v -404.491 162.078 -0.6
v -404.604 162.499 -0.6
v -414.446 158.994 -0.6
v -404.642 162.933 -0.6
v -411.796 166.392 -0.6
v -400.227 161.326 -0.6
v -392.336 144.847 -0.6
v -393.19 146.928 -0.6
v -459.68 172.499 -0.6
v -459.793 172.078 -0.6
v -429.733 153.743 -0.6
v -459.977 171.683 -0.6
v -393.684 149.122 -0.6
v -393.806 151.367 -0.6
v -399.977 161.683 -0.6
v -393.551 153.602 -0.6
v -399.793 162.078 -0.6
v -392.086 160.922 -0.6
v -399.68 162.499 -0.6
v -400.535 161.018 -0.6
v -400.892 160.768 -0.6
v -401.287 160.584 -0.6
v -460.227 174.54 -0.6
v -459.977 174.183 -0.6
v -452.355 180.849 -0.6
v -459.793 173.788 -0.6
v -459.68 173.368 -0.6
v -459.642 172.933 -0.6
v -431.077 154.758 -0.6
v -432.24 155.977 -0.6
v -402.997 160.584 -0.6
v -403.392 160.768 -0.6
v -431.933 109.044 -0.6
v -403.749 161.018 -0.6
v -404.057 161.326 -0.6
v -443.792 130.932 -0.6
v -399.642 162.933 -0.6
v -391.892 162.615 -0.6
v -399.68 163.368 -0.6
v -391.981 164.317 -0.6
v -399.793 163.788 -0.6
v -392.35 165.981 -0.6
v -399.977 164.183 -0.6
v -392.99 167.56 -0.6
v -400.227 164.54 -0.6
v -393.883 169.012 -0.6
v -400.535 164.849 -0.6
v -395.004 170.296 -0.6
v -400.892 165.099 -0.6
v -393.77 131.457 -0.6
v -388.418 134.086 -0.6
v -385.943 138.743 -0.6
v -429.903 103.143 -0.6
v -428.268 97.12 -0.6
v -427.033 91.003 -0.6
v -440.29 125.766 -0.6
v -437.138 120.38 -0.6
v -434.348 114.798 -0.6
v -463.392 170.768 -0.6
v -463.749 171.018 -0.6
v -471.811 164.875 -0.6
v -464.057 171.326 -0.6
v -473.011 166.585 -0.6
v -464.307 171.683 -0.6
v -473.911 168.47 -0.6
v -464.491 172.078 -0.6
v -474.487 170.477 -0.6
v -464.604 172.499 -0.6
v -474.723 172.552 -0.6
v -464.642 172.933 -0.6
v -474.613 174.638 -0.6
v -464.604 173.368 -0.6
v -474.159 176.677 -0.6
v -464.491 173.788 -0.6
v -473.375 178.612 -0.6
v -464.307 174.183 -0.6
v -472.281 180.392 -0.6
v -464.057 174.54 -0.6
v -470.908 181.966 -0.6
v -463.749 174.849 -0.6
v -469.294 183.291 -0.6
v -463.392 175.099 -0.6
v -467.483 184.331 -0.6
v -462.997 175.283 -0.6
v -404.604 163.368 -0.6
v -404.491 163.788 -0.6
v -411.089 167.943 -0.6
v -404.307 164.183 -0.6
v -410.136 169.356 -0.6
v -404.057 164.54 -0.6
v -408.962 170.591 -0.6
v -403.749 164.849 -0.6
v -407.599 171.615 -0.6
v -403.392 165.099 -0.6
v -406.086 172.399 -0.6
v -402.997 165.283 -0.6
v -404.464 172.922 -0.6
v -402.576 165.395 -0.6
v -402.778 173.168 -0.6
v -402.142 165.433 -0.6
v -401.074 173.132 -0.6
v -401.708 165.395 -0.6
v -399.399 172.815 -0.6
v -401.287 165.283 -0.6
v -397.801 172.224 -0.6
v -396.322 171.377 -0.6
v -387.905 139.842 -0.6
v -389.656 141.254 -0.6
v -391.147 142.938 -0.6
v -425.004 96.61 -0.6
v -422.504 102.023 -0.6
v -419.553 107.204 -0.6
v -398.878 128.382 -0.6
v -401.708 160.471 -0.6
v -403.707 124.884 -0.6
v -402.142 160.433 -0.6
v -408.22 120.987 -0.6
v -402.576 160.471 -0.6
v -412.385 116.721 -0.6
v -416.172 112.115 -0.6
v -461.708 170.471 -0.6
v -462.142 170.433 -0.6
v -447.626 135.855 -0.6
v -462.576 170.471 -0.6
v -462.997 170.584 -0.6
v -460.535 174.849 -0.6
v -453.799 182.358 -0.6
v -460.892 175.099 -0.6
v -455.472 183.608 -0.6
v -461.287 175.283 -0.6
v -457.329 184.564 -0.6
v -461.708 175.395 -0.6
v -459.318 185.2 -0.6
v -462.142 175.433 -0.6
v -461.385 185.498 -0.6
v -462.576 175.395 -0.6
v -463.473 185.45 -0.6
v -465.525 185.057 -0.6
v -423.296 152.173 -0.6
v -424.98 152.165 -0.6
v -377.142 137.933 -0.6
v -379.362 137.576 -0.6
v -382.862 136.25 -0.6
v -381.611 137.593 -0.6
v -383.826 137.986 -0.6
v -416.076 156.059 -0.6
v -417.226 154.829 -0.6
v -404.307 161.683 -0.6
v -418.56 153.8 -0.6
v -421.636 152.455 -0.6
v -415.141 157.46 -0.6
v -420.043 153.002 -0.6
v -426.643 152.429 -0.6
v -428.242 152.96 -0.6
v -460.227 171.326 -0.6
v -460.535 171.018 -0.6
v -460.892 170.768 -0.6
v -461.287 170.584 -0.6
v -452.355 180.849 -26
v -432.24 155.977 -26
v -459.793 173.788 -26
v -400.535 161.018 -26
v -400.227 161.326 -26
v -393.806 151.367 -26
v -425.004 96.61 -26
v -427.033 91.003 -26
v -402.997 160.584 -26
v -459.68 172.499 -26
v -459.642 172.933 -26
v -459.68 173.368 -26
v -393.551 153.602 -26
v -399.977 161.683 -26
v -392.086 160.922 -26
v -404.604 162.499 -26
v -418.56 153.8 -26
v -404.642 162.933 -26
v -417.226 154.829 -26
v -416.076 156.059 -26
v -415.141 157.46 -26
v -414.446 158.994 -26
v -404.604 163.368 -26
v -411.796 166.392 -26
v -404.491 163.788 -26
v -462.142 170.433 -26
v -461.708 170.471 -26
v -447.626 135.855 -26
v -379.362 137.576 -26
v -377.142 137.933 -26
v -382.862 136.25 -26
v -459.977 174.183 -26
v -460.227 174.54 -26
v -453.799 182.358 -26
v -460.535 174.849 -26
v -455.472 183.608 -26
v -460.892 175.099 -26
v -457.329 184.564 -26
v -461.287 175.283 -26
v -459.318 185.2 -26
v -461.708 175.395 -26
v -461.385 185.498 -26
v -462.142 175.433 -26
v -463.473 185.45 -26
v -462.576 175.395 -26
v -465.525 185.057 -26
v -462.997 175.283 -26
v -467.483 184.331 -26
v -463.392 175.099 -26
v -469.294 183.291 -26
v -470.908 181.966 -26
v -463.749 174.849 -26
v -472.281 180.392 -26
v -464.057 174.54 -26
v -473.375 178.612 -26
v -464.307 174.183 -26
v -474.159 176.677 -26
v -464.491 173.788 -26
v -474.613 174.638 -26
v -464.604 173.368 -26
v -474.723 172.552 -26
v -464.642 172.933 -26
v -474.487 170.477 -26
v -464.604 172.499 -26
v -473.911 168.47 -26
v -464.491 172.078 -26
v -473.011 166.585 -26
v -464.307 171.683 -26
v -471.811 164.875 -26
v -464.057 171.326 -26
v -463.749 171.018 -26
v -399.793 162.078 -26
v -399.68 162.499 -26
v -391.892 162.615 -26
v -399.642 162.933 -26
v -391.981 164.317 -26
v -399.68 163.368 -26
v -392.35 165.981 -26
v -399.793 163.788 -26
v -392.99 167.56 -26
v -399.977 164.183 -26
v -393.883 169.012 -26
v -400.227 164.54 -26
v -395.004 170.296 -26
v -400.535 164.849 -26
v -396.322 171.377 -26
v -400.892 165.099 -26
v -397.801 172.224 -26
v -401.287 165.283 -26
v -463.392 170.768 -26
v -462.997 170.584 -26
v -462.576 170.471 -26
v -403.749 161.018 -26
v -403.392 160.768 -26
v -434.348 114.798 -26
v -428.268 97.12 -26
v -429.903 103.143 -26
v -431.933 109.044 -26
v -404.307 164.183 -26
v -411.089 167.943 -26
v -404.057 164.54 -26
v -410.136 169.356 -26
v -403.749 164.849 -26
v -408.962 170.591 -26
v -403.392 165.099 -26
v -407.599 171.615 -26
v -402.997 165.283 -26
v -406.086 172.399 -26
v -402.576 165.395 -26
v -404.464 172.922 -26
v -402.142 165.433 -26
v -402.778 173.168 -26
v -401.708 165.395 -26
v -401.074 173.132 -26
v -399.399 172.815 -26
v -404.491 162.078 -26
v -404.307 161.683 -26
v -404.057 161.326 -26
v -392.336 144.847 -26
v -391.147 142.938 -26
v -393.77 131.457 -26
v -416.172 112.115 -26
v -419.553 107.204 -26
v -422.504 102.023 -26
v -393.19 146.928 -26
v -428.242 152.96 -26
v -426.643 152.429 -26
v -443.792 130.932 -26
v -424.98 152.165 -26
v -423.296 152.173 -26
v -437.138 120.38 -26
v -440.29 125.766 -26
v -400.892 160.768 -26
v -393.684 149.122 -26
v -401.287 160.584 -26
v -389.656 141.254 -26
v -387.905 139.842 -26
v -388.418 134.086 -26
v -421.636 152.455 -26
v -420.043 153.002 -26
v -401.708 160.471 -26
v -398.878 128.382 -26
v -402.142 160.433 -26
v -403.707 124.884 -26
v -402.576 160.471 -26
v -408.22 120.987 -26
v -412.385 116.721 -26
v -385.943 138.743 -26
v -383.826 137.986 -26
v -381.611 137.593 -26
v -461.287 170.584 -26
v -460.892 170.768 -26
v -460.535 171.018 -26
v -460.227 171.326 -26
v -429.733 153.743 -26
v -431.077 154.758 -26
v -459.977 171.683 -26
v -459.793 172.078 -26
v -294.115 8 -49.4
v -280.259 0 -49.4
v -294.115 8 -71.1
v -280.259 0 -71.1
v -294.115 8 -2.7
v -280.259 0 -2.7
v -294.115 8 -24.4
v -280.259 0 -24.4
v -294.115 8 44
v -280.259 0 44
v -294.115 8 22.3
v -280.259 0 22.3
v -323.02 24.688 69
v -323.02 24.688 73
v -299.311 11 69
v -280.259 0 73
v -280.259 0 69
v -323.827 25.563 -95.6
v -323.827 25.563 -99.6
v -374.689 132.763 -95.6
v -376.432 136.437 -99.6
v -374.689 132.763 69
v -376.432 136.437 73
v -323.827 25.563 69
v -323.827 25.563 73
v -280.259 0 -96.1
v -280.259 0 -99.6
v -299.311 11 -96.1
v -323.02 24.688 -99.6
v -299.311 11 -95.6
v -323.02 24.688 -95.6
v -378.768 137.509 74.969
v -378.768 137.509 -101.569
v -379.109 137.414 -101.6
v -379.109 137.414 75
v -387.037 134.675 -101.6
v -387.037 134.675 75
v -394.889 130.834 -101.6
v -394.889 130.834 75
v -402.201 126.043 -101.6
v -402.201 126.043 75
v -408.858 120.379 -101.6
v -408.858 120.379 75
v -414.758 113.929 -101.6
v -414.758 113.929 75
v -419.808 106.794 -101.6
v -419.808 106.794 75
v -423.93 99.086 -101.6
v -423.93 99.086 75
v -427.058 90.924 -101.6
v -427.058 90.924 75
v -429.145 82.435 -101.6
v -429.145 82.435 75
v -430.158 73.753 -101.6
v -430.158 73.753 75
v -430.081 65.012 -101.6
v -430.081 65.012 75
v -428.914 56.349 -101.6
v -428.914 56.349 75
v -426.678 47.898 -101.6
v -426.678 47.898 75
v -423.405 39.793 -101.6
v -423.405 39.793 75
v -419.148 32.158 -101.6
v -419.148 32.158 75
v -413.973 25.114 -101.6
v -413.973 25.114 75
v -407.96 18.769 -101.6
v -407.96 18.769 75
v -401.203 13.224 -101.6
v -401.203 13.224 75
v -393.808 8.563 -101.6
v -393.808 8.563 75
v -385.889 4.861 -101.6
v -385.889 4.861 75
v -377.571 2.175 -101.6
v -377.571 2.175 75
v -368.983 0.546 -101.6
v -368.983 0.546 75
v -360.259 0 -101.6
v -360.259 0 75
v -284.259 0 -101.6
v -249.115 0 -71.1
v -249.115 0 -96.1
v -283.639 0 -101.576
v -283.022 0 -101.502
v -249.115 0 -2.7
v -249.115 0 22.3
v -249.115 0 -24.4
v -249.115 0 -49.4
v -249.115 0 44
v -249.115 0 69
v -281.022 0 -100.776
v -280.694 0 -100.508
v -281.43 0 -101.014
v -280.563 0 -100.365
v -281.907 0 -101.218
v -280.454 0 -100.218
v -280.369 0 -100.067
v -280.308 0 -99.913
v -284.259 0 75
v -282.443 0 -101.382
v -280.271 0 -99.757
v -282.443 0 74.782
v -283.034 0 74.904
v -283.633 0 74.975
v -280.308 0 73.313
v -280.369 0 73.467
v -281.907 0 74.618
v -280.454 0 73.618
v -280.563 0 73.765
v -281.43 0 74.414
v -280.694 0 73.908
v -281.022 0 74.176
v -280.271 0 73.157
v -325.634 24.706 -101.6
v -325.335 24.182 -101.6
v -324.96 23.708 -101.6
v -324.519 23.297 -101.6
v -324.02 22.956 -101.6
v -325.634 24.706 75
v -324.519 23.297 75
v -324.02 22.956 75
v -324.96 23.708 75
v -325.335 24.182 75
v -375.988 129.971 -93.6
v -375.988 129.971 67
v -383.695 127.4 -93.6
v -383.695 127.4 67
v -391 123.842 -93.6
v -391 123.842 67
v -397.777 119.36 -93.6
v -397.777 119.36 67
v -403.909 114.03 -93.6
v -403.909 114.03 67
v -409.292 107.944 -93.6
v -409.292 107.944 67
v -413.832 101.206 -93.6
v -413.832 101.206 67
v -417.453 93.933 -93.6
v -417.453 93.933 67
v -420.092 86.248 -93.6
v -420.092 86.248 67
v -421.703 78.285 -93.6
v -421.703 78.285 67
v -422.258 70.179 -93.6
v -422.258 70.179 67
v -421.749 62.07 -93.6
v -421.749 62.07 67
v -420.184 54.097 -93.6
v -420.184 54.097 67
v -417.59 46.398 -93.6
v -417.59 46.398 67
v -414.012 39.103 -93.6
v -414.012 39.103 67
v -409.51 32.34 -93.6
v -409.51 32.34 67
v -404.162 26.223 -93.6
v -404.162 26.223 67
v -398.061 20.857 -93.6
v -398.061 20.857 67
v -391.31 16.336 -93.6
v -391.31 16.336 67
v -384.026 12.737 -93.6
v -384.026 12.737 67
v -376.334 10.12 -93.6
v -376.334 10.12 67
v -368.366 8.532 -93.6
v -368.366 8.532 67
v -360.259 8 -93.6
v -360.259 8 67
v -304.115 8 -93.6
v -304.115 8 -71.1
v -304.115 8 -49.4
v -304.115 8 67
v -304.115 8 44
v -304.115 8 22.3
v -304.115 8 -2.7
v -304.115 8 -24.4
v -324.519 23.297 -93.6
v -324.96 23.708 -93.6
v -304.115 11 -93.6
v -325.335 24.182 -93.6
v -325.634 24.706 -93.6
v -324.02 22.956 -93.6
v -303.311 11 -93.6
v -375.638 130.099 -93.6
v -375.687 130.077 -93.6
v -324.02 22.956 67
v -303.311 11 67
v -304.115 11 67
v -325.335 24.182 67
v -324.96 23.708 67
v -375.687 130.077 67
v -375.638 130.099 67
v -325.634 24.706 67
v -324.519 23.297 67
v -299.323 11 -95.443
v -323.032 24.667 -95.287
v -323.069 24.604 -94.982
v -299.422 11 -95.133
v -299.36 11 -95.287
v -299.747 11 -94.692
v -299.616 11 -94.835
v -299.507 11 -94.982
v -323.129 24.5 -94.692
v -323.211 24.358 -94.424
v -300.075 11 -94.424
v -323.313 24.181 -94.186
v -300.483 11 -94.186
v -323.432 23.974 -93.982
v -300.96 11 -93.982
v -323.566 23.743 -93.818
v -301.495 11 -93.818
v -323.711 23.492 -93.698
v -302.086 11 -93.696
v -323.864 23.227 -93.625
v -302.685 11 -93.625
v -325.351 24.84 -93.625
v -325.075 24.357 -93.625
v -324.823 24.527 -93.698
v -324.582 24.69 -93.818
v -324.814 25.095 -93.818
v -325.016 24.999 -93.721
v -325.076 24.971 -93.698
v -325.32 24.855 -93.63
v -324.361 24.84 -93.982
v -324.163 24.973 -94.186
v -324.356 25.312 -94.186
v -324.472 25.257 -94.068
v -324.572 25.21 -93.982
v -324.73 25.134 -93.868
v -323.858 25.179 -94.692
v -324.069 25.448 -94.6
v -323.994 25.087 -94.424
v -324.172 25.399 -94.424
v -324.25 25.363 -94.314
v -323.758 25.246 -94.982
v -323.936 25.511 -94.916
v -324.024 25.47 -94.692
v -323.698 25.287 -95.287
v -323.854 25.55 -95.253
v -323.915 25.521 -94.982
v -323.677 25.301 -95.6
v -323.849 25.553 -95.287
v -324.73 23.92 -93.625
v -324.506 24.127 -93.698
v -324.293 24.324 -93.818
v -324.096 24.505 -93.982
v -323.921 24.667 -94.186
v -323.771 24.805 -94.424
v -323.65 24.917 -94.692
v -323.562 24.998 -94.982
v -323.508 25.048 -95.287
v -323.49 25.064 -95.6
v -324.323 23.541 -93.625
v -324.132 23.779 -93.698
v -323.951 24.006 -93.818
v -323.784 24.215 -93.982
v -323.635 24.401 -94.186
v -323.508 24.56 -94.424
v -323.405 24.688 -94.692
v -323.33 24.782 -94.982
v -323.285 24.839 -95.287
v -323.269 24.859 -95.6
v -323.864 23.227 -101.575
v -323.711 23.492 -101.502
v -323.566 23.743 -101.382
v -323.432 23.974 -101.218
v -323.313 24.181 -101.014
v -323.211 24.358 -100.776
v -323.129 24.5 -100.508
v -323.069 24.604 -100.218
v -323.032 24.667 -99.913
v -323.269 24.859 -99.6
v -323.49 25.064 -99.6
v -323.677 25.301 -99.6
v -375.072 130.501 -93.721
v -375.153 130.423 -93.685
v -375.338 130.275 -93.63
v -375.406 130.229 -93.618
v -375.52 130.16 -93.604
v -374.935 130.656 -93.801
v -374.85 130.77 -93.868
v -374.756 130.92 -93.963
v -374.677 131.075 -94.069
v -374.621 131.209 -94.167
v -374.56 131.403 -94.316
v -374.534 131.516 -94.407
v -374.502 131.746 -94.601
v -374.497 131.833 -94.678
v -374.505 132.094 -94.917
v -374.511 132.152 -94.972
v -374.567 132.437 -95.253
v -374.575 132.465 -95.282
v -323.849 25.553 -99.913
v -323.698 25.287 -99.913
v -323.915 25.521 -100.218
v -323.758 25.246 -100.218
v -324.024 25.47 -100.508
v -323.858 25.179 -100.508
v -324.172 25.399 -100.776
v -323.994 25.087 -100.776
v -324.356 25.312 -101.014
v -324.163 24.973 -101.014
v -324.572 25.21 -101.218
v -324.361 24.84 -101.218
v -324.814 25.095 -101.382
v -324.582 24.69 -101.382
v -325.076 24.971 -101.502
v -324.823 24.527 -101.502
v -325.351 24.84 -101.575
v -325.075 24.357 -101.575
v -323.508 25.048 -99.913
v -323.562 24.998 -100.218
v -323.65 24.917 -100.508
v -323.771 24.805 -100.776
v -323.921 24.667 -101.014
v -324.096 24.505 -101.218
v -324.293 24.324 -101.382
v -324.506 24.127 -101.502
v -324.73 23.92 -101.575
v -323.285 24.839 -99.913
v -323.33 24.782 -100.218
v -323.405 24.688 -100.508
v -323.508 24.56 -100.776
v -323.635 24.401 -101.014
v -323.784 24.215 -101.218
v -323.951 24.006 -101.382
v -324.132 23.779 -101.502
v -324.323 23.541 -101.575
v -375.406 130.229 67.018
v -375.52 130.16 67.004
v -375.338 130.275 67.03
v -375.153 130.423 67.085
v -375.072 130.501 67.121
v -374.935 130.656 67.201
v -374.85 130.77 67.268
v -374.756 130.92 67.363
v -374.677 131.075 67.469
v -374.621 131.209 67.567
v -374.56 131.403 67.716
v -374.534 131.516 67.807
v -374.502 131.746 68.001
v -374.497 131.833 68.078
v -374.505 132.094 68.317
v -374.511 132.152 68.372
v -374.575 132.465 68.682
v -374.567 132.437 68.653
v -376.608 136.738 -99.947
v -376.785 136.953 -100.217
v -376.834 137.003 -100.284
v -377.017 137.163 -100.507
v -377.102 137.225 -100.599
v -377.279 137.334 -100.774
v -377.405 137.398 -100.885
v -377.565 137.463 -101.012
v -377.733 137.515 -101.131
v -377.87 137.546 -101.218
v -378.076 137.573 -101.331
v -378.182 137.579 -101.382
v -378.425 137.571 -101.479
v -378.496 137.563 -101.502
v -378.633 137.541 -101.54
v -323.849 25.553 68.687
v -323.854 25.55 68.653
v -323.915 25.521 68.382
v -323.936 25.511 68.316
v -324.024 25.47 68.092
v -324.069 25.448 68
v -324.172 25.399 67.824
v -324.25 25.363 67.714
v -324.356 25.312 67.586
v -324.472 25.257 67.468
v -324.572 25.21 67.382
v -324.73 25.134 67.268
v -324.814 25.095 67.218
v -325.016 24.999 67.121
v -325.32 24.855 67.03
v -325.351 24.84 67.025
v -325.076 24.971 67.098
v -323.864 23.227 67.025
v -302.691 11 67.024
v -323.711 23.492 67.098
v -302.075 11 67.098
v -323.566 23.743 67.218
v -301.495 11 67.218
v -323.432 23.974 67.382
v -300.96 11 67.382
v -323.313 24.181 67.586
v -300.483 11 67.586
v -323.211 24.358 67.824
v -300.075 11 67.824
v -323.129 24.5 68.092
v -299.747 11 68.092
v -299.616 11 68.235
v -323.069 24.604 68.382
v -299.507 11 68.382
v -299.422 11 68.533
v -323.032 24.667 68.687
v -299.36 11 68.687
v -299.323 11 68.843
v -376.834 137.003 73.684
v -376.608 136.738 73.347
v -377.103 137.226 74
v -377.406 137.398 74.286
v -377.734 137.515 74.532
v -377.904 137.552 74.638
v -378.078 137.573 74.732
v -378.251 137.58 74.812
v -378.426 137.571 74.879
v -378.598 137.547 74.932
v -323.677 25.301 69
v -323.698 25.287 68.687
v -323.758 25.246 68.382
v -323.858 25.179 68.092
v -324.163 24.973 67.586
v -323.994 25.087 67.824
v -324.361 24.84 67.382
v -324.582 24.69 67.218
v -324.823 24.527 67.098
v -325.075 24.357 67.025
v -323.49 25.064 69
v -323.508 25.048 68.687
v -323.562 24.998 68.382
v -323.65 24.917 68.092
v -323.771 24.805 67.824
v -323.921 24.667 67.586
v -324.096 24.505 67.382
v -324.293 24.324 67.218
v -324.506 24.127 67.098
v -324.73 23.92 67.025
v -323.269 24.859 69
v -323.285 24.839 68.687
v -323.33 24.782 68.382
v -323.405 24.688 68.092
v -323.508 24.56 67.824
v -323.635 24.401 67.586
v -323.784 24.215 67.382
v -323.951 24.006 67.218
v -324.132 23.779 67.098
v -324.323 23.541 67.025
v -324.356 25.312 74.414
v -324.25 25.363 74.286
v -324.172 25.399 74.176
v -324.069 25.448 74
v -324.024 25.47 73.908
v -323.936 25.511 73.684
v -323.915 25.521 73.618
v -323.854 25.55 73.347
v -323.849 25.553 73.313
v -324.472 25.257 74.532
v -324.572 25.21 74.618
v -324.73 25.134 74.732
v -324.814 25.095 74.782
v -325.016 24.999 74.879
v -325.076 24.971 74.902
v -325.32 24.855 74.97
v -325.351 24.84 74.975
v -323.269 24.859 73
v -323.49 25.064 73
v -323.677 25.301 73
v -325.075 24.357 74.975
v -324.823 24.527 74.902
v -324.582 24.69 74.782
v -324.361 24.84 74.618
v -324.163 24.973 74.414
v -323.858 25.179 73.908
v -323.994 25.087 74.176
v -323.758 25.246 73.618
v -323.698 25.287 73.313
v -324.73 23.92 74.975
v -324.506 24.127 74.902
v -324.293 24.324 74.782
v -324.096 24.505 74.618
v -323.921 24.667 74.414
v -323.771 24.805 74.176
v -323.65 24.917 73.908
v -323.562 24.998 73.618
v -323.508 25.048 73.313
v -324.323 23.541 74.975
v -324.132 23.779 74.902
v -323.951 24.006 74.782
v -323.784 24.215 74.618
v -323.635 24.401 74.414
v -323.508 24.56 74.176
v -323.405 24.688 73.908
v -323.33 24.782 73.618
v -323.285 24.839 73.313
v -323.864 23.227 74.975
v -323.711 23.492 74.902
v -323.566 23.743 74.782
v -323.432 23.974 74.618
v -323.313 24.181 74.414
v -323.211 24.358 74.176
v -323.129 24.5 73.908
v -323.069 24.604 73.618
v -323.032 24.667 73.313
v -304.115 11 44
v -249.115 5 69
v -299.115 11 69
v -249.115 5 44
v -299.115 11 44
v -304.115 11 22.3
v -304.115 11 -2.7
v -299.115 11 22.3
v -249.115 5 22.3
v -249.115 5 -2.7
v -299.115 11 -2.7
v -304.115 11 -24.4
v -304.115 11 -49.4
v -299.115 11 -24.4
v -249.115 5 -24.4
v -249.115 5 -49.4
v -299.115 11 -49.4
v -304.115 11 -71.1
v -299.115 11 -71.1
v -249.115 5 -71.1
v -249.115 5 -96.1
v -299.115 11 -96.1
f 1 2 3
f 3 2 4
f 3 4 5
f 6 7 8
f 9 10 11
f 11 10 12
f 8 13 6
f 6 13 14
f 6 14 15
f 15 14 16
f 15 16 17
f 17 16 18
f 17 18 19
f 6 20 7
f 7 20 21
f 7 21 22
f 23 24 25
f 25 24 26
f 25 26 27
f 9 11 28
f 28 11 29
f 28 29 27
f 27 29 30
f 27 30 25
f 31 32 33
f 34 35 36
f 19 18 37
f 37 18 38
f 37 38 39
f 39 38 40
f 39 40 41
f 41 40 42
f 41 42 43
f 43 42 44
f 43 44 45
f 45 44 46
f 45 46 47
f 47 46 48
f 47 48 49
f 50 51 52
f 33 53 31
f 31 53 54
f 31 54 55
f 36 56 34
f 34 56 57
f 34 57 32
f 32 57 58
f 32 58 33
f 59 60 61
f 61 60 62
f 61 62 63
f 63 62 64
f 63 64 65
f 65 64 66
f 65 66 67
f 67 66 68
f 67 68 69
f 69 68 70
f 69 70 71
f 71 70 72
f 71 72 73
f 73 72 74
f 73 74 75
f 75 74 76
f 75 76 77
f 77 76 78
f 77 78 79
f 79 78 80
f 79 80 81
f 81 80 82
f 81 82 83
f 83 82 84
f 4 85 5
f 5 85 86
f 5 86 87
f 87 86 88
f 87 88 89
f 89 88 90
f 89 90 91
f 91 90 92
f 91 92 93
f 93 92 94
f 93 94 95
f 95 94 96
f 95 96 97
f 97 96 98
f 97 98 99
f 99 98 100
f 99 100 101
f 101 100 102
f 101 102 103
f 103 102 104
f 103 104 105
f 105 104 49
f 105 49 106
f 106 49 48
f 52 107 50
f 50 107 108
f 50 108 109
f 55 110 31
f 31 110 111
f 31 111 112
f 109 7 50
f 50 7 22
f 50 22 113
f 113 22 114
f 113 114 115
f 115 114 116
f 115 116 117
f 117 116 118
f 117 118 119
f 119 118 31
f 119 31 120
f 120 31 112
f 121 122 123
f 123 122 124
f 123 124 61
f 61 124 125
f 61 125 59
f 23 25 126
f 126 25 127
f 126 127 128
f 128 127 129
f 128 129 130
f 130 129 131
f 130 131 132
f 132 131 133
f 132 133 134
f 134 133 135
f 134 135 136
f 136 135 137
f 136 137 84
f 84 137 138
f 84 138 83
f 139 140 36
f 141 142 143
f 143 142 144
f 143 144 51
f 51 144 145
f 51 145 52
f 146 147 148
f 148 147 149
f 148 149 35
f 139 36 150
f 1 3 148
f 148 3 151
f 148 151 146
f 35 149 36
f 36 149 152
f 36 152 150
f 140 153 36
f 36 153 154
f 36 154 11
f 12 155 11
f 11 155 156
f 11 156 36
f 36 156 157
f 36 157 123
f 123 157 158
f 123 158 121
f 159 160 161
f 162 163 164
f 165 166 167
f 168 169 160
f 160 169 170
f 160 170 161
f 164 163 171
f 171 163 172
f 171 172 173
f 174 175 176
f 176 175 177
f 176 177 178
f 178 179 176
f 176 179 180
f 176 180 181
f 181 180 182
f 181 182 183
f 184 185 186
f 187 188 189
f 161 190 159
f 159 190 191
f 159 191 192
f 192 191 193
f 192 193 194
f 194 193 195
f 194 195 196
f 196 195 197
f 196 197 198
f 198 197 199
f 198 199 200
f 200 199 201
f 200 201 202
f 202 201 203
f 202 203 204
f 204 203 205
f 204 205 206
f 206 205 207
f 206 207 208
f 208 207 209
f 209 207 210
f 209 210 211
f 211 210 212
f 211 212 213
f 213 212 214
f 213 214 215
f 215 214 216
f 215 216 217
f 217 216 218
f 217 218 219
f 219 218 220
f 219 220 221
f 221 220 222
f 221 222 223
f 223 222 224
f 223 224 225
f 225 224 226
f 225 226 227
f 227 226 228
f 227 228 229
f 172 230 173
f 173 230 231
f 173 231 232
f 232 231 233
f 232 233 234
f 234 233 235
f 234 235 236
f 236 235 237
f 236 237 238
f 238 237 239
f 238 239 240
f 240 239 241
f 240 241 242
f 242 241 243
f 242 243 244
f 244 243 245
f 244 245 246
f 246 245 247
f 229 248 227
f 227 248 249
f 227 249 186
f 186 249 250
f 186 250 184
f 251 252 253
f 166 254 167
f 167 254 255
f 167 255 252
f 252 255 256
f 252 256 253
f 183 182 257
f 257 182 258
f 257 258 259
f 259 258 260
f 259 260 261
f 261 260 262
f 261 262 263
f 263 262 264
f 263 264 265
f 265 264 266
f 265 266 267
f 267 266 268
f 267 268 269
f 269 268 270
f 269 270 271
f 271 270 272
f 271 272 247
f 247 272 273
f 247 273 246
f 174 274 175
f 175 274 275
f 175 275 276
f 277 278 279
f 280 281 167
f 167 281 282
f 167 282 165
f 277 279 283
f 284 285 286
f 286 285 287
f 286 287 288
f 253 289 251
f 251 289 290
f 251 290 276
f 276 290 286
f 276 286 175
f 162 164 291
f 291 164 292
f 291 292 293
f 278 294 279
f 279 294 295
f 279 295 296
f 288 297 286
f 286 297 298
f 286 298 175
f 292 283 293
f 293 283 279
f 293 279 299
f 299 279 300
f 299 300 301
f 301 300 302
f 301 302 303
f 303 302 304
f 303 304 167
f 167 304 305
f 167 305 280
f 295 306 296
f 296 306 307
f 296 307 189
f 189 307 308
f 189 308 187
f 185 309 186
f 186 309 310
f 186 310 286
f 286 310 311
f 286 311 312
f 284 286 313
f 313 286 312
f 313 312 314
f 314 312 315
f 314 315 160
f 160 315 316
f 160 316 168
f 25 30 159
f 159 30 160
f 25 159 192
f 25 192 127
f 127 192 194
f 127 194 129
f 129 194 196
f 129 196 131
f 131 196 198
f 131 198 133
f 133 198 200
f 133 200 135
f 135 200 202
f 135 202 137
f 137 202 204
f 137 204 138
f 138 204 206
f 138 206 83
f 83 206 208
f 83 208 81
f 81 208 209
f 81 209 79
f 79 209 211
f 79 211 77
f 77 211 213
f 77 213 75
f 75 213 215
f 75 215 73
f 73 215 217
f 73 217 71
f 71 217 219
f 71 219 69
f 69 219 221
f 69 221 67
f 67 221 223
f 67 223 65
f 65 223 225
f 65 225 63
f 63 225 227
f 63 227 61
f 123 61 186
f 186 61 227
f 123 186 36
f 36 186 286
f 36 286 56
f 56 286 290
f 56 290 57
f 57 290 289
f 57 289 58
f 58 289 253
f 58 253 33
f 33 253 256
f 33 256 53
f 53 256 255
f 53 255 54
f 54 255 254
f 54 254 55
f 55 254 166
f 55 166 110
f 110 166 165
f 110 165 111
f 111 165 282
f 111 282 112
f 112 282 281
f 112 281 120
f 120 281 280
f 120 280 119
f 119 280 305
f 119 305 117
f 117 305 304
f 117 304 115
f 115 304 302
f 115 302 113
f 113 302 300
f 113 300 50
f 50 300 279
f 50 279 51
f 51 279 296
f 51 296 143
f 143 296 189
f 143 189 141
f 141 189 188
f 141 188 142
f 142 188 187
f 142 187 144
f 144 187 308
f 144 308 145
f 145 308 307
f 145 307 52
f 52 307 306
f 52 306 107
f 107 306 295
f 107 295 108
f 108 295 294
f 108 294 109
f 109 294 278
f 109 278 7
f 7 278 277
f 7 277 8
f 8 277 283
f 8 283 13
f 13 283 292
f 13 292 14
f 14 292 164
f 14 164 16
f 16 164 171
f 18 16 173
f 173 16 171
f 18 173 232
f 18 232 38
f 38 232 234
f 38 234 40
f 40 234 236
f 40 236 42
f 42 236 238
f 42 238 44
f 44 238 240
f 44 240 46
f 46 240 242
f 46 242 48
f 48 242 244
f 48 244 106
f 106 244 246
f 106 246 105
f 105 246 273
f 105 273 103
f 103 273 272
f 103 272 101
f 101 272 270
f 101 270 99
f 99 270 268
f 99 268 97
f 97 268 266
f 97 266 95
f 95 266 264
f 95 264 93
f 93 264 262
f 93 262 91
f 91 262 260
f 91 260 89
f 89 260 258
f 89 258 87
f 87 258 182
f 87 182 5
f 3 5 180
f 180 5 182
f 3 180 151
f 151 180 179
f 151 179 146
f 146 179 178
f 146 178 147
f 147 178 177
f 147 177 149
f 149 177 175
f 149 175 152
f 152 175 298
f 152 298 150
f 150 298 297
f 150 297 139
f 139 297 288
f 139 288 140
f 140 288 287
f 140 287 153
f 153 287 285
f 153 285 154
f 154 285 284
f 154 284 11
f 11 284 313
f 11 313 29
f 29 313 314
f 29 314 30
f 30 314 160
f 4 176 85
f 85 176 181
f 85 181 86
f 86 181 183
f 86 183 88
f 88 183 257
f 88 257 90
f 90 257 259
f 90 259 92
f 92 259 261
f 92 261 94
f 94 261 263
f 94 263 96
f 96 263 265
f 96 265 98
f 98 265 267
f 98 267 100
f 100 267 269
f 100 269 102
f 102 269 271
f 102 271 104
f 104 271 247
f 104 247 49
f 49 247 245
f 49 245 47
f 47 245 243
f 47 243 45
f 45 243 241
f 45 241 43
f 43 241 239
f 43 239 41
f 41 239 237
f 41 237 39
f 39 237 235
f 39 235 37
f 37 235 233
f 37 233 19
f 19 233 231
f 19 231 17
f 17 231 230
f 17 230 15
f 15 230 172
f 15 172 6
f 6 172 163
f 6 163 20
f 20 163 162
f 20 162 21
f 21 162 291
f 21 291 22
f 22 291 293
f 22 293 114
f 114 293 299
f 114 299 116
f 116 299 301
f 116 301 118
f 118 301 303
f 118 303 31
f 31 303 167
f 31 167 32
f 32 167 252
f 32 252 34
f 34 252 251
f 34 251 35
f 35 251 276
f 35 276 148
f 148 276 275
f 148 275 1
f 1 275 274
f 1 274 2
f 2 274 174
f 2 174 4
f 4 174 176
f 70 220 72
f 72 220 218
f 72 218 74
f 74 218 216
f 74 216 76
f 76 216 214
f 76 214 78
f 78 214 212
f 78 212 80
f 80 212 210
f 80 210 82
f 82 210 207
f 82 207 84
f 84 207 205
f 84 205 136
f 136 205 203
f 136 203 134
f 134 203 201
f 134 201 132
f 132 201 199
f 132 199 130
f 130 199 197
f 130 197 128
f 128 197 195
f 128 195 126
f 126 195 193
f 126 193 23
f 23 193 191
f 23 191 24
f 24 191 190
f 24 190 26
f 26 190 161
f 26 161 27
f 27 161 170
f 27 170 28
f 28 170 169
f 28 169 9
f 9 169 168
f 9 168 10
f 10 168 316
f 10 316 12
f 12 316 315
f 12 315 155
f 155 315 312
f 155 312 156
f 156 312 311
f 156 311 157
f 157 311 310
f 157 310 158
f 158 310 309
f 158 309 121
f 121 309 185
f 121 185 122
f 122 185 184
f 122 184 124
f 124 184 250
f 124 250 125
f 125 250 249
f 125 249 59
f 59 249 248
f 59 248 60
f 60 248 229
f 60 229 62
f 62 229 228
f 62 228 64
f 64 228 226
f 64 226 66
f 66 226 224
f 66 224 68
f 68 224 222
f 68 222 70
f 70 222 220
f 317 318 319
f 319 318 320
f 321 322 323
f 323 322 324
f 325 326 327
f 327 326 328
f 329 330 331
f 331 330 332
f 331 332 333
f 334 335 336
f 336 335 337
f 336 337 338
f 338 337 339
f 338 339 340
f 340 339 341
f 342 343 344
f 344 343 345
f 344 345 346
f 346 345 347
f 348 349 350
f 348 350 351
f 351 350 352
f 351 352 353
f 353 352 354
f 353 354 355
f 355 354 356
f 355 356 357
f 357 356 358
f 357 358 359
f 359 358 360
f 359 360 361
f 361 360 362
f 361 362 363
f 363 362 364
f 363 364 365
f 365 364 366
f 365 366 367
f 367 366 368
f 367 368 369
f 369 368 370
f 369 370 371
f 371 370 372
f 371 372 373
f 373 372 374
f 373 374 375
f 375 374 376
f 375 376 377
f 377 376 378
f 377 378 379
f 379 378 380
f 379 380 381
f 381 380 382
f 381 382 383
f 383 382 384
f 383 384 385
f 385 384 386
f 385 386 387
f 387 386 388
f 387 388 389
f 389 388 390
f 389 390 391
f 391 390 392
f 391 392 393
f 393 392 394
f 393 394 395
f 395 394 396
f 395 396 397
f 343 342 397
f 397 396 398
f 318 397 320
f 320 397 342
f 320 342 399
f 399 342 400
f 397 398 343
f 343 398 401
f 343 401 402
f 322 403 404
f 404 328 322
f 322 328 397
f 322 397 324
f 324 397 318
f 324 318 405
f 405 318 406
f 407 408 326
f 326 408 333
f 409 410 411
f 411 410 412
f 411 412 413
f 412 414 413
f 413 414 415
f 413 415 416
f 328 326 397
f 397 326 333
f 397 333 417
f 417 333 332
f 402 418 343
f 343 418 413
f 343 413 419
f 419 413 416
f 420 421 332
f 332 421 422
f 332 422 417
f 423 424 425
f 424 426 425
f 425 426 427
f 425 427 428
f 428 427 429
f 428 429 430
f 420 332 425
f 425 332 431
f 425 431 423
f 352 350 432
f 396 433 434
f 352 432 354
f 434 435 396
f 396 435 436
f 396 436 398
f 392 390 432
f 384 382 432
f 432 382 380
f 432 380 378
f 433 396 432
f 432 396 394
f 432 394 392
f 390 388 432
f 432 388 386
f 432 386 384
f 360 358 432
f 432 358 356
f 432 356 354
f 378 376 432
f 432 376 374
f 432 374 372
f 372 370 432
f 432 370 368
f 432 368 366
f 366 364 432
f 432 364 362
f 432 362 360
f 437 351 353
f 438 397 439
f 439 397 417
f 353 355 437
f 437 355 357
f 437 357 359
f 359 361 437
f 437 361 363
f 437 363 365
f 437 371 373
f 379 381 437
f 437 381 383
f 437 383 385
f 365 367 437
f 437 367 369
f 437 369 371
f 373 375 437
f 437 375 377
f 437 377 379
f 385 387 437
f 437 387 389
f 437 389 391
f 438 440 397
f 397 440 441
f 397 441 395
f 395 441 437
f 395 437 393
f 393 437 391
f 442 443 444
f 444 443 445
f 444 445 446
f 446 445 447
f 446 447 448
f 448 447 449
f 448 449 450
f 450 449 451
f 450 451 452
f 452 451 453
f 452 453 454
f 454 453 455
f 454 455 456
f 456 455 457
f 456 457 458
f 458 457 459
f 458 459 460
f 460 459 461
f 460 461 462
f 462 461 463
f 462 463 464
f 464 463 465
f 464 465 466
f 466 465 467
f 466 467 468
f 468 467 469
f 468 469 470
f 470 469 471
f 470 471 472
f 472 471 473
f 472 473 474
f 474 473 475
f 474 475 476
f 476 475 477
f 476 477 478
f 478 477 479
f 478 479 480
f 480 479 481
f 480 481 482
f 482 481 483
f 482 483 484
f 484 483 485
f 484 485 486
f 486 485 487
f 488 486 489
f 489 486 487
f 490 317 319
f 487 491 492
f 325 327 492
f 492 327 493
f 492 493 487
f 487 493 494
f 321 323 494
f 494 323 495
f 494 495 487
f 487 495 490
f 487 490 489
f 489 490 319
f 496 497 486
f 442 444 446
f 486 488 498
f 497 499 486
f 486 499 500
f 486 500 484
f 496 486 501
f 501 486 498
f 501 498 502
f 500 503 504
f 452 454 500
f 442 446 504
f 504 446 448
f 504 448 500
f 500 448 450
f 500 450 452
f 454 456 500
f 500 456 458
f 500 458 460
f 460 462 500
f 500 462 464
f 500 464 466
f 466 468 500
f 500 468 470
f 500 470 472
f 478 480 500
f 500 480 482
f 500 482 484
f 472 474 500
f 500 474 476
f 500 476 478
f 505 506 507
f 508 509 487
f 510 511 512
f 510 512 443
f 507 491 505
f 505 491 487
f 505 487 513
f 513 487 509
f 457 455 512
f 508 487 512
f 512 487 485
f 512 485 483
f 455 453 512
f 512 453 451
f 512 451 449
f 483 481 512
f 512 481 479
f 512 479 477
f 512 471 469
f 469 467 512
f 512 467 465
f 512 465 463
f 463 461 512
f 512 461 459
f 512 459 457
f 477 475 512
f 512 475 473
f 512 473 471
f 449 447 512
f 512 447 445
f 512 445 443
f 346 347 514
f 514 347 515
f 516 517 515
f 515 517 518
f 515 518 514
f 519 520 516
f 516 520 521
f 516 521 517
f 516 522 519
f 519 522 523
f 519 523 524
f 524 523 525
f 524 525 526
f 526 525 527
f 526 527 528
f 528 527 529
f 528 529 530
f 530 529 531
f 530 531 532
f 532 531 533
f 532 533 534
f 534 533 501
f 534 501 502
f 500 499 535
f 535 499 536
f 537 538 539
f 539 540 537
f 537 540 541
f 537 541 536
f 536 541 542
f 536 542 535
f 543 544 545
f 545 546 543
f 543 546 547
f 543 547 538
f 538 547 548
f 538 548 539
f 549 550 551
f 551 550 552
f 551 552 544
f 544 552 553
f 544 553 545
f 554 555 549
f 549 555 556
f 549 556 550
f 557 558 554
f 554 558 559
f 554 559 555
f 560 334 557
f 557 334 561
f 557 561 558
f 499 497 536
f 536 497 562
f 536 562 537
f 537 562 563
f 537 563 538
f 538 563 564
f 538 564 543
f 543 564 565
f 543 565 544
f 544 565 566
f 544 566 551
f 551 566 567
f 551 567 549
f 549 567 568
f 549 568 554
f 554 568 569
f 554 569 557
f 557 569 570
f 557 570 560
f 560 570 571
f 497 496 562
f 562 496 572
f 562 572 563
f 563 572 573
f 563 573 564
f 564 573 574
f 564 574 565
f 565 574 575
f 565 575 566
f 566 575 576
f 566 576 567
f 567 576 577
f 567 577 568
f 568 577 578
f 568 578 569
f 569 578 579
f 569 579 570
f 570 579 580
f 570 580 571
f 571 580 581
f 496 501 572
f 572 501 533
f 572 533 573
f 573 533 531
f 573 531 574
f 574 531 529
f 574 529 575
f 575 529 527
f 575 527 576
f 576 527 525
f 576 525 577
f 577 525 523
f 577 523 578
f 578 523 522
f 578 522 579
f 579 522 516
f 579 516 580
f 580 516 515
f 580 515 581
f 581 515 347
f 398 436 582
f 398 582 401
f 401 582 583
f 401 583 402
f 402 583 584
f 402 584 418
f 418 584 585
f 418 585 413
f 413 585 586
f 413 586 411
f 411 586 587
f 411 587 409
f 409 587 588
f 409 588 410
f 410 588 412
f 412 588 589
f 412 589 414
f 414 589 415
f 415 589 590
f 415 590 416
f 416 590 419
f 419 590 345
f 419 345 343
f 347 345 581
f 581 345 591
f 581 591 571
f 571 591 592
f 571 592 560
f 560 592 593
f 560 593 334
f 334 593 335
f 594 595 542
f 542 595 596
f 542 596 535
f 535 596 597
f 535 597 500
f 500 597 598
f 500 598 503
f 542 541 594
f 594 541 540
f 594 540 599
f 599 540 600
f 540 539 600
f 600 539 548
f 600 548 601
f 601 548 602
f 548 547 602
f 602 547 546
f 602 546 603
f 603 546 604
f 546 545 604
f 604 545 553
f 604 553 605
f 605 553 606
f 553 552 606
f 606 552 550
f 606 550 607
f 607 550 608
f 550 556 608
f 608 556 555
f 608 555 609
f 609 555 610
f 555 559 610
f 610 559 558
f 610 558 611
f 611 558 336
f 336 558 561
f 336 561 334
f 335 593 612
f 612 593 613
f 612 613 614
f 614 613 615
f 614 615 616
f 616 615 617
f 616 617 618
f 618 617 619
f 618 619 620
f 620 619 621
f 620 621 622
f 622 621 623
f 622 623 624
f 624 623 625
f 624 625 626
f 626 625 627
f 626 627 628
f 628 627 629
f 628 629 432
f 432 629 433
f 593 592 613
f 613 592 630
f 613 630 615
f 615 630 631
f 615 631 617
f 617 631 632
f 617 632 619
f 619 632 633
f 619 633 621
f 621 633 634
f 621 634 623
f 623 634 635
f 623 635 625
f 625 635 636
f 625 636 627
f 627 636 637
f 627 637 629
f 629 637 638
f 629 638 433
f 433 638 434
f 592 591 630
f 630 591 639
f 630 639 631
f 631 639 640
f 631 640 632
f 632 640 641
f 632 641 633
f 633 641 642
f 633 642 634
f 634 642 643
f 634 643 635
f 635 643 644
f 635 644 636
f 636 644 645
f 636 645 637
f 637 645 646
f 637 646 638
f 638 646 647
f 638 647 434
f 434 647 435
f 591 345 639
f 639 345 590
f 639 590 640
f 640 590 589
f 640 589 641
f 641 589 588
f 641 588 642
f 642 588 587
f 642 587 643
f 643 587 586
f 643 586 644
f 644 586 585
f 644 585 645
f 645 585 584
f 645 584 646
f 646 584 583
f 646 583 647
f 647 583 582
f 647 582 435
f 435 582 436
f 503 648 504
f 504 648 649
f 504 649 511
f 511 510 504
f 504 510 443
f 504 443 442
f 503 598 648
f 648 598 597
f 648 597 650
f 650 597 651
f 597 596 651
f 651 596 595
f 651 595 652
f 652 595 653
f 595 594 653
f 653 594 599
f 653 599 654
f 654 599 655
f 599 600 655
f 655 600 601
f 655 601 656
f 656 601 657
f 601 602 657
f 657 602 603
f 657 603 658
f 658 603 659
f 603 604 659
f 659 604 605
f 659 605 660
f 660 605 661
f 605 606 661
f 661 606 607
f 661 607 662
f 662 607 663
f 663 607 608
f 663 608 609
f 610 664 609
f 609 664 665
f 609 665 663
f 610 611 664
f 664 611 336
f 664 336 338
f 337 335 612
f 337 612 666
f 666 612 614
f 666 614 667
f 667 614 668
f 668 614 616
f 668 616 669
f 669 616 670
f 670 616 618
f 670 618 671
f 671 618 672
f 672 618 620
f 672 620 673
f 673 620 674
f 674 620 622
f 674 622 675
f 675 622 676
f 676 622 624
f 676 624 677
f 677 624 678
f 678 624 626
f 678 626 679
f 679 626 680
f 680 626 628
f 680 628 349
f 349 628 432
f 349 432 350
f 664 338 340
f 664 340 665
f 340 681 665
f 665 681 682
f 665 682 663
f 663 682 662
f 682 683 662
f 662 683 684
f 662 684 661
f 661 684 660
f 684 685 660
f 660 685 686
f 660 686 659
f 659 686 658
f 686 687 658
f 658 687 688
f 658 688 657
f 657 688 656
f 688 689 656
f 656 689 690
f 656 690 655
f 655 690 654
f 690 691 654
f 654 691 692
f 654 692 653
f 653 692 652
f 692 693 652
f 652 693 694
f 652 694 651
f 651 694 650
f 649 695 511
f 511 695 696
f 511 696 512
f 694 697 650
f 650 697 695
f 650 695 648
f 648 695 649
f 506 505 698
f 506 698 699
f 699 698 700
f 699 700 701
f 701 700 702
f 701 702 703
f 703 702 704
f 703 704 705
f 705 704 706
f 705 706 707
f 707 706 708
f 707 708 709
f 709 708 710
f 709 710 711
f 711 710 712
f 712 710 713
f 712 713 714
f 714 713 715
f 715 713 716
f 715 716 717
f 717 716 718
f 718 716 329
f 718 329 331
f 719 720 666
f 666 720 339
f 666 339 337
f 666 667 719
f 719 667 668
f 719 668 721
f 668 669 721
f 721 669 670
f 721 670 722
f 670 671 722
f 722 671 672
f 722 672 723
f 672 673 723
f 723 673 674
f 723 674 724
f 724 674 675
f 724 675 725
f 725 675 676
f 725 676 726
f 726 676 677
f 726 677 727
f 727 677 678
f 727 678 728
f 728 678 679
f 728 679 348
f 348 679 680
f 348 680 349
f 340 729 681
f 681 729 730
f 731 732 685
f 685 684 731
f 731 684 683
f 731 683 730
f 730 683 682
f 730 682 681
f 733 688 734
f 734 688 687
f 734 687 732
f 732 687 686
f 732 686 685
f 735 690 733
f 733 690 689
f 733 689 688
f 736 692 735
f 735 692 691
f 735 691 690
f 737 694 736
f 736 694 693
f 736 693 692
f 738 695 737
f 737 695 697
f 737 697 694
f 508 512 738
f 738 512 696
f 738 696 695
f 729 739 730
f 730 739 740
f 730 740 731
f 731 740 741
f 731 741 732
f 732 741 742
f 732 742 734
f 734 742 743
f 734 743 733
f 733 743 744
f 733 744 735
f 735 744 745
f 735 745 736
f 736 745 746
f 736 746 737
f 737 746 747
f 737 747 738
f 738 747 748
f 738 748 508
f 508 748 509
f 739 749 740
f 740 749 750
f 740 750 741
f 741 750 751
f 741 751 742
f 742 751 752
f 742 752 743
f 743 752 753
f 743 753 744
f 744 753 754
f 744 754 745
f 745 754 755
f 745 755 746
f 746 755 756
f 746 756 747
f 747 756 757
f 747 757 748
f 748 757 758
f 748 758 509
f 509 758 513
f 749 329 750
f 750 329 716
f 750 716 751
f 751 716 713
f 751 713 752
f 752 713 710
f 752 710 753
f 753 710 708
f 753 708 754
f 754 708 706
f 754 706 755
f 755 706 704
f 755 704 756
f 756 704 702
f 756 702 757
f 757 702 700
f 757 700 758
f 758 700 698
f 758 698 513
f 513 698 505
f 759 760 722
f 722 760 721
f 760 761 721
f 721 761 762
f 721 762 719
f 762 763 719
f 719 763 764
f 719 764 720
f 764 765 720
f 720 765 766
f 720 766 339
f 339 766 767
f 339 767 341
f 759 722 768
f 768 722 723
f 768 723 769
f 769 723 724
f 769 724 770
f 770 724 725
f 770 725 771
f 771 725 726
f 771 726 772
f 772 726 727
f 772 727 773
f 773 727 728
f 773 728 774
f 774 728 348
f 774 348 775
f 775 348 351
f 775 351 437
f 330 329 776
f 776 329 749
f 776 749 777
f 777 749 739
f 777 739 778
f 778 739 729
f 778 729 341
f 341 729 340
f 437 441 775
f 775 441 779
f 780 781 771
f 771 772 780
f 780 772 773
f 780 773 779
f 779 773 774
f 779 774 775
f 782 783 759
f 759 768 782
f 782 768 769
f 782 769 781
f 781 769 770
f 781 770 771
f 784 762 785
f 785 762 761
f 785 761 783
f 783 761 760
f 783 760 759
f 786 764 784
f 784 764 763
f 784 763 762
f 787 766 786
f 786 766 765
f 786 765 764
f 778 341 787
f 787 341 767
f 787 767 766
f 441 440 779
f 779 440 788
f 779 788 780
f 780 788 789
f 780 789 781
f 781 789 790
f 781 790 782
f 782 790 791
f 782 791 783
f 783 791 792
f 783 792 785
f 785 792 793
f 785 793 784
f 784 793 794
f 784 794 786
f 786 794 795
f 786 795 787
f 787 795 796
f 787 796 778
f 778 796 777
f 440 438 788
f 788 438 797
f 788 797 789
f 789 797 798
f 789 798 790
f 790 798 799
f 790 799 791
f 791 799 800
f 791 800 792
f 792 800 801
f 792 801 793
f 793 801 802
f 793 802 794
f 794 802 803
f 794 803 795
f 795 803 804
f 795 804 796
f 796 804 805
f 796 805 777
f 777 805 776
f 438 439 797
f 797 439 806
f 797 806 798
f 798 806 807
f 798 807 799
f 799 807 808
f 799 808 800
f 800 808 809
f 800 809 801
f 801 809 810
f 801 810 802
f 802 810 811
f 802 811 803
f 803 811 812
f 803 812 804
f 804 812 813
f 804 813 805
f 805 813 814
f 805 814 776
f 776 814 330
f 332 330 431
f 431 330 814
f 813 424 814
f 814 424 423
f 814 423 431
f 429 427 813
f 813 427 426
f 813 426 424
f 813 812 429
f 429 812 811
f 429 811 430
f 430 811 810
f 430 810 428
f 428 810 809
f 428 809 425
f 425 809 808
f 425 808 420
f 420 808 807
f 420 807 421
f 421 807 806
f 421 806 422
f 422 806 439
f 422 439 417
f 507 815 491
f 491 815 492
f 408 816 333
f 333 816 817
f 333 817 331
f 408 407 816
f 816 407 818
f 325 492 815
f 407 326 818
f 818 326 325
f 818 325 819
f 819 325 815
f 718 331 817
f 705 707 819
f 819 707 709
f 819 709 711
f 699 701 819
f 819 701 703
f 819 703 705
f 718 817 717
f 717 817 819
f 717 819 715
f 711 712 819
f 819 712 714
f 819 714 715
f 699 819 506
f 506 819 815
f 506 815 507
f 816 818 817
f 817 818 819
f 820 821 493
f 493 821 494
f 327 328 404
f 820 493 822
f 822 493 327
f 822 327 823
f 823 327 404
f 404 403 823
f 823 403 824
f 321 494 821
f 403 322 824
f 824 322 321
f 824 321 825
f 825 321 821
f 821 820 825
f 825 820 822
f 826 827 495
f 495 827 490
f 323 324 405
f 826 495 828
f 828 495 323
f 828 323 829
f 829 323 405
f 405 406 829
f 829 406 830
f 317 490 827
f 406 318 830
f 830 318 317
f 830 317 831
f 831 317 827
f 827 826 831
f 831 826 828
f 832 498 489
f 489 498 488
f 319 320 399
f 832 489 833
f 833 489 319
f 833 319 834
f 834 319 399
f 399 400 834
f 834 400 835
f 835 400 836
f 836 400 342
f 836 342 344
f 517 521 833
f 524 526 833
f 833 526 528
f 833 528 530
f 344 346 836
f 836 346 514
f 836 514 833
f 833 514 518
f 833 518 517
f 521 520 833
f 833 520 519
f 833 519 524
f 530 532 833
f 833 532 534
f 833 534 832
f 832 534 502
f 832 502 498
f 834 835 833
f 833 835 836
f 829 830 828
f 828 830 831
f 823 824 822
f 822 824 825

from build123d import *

# Parameters (mm, degrees)
BOSS_EXTRUDE1_DEPTH             = 75
BOSS_EXTRUDE1_DEPTH_BACK        = 101.6
SHELL2_T                        = -8
BOSS_EXTRUDE2_DEPTH             = 12.7
CUT_EXTRUDE1_DEPTH              = 20
CUT_EXTRUDE1_DEPTH_BACK         = 20
SKETCH8_R                       = 2.5
FILLET3_R                       = 2
BOSS_EXTRUDE3_DEPTH             = 3
BOSS_EXTRUDE3_DIRECTION_2_REACH = 518.917
CUT_EXTRUDE4_DEPTH              = 25
LPATTERN2_COUNT                 = 4
LPATTERN2_PITCH                 = 46.7


with BuildPart() as part:
    # Sketch3 → Boss-Extrude1 (new, two sides: drawn at the far end of the back side and taken through both)
    with BuildSketch(Plane.XY.offset(-BOSS_EXTRUDE1_DEPTH_BACK)):
        with BuildLine():
            Line((-323.559783679, 25), (-280.25851349, 0))
            Line((-280.25851349, 0), (-360.25851349, 0))
            ThreePointArc((-360.25851349, 0), (-429.739955011, 61.495337509), (-377.141833761, 137.933449026))
            Line((-377.141833761, 137.933449026), (-323.559783679, 25))
        make_face()
    extrude(amount=BOSS_EXTRUDE1_DEPTH + BOSS_EXTRUDE1_DEPTH_BACK)

    # Shell2
    shell2_openings = [part.faces().sort_by_distance(p)[0] for p in [
        (-350.35080872, 81.466724513, -13.3),
        (-301.909148584, 12.5, -13.3),
    ]]
    offset(amount=SHELL2_T, openings=shell2_openings, kind=Kind.INTERSECTION)

    # Fillet3
    fillet3_edges = [part.edges().sort_by_distance(p)[0] for p in [
        (-301.909148584, 12.5, -101.6),
        (-350.35080872, 81.466724513, -101.6),
        (-301.909148584, 12.5, 75),
        (-350.35080872, 81.466724513, 75),
        (-323.559783679, 25, 71),
        (-373.633981695, 130.540043362, -13.3),
        (-348.596882687, 77.770021681, -93.6),
        (-308.837351815, 16.5, -93.6),
        (-308.837351815, 16.5, 67),
        (-348.596882687, 77.770021681, 67),
        (-377.141833761, 137.933449026, -13.3),
        (-323.559783679, 25, -97.6),
    ]]
    fillet(fillet3_edges, radius=FILLET3_R)

    # Sketch17 → Boss-Extrude3 (add)
    with BuildSketch(Plane(origin=(0, 8, 0), x_dir=(1, 0, 0), z_dir=(0, 1, 0))):
        Polygon((-294.11491995, -44), (-304.11491995, -44), (-304.11491995, -69), (-294.11491995, -69), (-249.11491995, -69), (-249.11491995, -44), align=None)
    boss_extrude3 = extrude(amount=BOSS_EXTRUDE3_DEPTH)

    # Boss-Extrude3 direction 2: up to this face of the body (flat: up to its plane)
    boss_extrude3_direction_2_end = Plane(part.part.faces().sort_by_distance((-320.268020141, 0, -13.3))[0])
    # Sketch17 → Boss-Extrude3 direction 2 (add, up to the picked face)
    with BuildSketch(Plane(origin=(0, 8, 0), x_dir=(1, 0, 0), z_dir=(0, 1, 0)), mode=Mode.PRIVATE) as boss_extrude3_direction_2_sk1:
        Polygon((-294.11491995, -44), (-304.11491995, -44), (-304.11491995, -69), (-294.11491995, -69), (-249.11491995, -69), (-249.11491995, -44), align=None)
    boss_extrude3_direction_2_tool1 = split(extrude(boss_extrude3_direction_2_sk1.sketch, amount=-BOSS_EXTRUDE3_DIRECTION_2_REACH, mode=Mode.PRIVATE), bisect_by=boss_extrude3_direction_2_end, keep=Keep.BOTH, mode=Mode.PRIVATE)
    boss_extrude3_direction_2 = boss_extrude3_direction_2_tool1.solids().sort_by(Axis((-276.61492, 8, 56.5), (0, -1, 0)))[0]
    add(boss_extrude3_direction_2)

    # Sketch18 → Cut-Extrude4 (cut)
    with BuildSketch(Plane.XY.offset(69)):
        Polygon((-299.11491995, 11), (-249.11491995, 11), (-249.11491995, 5), align=None)
    cut_extrude4 = extrude(amount=-CUT_EXTRUDE4_DEPTH, mode=Mode.SUBTRACT)

    # LPattern2: Boss-Extrude3, Boss-Extrude3 direction 2, Cut-Extrude4 ×4
    with Locations(*[(0, 0, -i * LPATTERN2_PITCH) for i in range(1, LPATTERN2_COUNT)]):
        add(boss_extrude3)
        add(boss_extrude3_direction_2)
        add(cut_extrude4, mode=Mode.SUBTRACT)


with BuildPart() as body_2:
    # Sketch5 → Boss-Extrude2 (new, symmetric)
    with BuildSketch(Plane.XY):
        with BuildLine():
            Line((-471.81115259, 164.875216113), (-447.626133428, 135.854875839))
            ThreePointArc((-447.626133428, 135.854875839), (-434.348232425, 114.79784848), (-427.033300971, 91.003041609))
            ThreePointArc((-427.033300971, 91.003041609), (-408.219805521, 120.987395175), (-377.141833761, 137.933449026))
            ThreePointArc((-377.141833761, 137.933449026), (-389.656160093, 141.253981011), (-393.550663238, 153.601739572))
            Line((-393.550663238, 153.601739572), (-392.086361367, 160.922015761))
            ThreePointArc((-392.086361367, 160.922015761), (-399.399303926, 172.814588584), (-411.795560573, 166.392342997))
            Line((-411.795560573, 166.392342997), (-414.446186187, 158.99448236))
            ThreePointArc((-414.446186187, 158.99448236), (-422.460035632, 152.280344724), (-432.239552133, 155.976624494))
            Line((-432.239552133, 155.976624494), (-452.355057749, 180.848615454))
            ThreePointArc((-452.355057749, 180.848615454), (-470.128749354, 182.661759446), (-471.81115259, 164.875216113))
        make_face()
    extrude(amount=BOSS_EXTRUDE2_DEPTH, both=True)

    # Sketch8 → Cut-Extrude1 (cut, two sides: drawn at the far end of the back side and taken through both)
    with BuildSketch(Plane.XY.offset(-CUT_EXTRUDE1_DEPTH_BACK)):
        with Locations((-402.141833761, 162.933449026)):
            Circle(SKETCH8_R)
        with Locations((-462.141833761, 172.933449026)):
            Circle(SKETCH8_R)
    extrude(amount=CUT_EXTRUDE1_DEPTH + CUT_EXTRUDE1_DEPTH_BACK, mode=Mode.SUBTRACT)


with BuildPart() as body_2_1:
    # Body-Move/Copy4: moved
    add(body_2.part.moved(Location((0, 0, -13.3))))


solid = Compound([part.part, body_2_1.part])
